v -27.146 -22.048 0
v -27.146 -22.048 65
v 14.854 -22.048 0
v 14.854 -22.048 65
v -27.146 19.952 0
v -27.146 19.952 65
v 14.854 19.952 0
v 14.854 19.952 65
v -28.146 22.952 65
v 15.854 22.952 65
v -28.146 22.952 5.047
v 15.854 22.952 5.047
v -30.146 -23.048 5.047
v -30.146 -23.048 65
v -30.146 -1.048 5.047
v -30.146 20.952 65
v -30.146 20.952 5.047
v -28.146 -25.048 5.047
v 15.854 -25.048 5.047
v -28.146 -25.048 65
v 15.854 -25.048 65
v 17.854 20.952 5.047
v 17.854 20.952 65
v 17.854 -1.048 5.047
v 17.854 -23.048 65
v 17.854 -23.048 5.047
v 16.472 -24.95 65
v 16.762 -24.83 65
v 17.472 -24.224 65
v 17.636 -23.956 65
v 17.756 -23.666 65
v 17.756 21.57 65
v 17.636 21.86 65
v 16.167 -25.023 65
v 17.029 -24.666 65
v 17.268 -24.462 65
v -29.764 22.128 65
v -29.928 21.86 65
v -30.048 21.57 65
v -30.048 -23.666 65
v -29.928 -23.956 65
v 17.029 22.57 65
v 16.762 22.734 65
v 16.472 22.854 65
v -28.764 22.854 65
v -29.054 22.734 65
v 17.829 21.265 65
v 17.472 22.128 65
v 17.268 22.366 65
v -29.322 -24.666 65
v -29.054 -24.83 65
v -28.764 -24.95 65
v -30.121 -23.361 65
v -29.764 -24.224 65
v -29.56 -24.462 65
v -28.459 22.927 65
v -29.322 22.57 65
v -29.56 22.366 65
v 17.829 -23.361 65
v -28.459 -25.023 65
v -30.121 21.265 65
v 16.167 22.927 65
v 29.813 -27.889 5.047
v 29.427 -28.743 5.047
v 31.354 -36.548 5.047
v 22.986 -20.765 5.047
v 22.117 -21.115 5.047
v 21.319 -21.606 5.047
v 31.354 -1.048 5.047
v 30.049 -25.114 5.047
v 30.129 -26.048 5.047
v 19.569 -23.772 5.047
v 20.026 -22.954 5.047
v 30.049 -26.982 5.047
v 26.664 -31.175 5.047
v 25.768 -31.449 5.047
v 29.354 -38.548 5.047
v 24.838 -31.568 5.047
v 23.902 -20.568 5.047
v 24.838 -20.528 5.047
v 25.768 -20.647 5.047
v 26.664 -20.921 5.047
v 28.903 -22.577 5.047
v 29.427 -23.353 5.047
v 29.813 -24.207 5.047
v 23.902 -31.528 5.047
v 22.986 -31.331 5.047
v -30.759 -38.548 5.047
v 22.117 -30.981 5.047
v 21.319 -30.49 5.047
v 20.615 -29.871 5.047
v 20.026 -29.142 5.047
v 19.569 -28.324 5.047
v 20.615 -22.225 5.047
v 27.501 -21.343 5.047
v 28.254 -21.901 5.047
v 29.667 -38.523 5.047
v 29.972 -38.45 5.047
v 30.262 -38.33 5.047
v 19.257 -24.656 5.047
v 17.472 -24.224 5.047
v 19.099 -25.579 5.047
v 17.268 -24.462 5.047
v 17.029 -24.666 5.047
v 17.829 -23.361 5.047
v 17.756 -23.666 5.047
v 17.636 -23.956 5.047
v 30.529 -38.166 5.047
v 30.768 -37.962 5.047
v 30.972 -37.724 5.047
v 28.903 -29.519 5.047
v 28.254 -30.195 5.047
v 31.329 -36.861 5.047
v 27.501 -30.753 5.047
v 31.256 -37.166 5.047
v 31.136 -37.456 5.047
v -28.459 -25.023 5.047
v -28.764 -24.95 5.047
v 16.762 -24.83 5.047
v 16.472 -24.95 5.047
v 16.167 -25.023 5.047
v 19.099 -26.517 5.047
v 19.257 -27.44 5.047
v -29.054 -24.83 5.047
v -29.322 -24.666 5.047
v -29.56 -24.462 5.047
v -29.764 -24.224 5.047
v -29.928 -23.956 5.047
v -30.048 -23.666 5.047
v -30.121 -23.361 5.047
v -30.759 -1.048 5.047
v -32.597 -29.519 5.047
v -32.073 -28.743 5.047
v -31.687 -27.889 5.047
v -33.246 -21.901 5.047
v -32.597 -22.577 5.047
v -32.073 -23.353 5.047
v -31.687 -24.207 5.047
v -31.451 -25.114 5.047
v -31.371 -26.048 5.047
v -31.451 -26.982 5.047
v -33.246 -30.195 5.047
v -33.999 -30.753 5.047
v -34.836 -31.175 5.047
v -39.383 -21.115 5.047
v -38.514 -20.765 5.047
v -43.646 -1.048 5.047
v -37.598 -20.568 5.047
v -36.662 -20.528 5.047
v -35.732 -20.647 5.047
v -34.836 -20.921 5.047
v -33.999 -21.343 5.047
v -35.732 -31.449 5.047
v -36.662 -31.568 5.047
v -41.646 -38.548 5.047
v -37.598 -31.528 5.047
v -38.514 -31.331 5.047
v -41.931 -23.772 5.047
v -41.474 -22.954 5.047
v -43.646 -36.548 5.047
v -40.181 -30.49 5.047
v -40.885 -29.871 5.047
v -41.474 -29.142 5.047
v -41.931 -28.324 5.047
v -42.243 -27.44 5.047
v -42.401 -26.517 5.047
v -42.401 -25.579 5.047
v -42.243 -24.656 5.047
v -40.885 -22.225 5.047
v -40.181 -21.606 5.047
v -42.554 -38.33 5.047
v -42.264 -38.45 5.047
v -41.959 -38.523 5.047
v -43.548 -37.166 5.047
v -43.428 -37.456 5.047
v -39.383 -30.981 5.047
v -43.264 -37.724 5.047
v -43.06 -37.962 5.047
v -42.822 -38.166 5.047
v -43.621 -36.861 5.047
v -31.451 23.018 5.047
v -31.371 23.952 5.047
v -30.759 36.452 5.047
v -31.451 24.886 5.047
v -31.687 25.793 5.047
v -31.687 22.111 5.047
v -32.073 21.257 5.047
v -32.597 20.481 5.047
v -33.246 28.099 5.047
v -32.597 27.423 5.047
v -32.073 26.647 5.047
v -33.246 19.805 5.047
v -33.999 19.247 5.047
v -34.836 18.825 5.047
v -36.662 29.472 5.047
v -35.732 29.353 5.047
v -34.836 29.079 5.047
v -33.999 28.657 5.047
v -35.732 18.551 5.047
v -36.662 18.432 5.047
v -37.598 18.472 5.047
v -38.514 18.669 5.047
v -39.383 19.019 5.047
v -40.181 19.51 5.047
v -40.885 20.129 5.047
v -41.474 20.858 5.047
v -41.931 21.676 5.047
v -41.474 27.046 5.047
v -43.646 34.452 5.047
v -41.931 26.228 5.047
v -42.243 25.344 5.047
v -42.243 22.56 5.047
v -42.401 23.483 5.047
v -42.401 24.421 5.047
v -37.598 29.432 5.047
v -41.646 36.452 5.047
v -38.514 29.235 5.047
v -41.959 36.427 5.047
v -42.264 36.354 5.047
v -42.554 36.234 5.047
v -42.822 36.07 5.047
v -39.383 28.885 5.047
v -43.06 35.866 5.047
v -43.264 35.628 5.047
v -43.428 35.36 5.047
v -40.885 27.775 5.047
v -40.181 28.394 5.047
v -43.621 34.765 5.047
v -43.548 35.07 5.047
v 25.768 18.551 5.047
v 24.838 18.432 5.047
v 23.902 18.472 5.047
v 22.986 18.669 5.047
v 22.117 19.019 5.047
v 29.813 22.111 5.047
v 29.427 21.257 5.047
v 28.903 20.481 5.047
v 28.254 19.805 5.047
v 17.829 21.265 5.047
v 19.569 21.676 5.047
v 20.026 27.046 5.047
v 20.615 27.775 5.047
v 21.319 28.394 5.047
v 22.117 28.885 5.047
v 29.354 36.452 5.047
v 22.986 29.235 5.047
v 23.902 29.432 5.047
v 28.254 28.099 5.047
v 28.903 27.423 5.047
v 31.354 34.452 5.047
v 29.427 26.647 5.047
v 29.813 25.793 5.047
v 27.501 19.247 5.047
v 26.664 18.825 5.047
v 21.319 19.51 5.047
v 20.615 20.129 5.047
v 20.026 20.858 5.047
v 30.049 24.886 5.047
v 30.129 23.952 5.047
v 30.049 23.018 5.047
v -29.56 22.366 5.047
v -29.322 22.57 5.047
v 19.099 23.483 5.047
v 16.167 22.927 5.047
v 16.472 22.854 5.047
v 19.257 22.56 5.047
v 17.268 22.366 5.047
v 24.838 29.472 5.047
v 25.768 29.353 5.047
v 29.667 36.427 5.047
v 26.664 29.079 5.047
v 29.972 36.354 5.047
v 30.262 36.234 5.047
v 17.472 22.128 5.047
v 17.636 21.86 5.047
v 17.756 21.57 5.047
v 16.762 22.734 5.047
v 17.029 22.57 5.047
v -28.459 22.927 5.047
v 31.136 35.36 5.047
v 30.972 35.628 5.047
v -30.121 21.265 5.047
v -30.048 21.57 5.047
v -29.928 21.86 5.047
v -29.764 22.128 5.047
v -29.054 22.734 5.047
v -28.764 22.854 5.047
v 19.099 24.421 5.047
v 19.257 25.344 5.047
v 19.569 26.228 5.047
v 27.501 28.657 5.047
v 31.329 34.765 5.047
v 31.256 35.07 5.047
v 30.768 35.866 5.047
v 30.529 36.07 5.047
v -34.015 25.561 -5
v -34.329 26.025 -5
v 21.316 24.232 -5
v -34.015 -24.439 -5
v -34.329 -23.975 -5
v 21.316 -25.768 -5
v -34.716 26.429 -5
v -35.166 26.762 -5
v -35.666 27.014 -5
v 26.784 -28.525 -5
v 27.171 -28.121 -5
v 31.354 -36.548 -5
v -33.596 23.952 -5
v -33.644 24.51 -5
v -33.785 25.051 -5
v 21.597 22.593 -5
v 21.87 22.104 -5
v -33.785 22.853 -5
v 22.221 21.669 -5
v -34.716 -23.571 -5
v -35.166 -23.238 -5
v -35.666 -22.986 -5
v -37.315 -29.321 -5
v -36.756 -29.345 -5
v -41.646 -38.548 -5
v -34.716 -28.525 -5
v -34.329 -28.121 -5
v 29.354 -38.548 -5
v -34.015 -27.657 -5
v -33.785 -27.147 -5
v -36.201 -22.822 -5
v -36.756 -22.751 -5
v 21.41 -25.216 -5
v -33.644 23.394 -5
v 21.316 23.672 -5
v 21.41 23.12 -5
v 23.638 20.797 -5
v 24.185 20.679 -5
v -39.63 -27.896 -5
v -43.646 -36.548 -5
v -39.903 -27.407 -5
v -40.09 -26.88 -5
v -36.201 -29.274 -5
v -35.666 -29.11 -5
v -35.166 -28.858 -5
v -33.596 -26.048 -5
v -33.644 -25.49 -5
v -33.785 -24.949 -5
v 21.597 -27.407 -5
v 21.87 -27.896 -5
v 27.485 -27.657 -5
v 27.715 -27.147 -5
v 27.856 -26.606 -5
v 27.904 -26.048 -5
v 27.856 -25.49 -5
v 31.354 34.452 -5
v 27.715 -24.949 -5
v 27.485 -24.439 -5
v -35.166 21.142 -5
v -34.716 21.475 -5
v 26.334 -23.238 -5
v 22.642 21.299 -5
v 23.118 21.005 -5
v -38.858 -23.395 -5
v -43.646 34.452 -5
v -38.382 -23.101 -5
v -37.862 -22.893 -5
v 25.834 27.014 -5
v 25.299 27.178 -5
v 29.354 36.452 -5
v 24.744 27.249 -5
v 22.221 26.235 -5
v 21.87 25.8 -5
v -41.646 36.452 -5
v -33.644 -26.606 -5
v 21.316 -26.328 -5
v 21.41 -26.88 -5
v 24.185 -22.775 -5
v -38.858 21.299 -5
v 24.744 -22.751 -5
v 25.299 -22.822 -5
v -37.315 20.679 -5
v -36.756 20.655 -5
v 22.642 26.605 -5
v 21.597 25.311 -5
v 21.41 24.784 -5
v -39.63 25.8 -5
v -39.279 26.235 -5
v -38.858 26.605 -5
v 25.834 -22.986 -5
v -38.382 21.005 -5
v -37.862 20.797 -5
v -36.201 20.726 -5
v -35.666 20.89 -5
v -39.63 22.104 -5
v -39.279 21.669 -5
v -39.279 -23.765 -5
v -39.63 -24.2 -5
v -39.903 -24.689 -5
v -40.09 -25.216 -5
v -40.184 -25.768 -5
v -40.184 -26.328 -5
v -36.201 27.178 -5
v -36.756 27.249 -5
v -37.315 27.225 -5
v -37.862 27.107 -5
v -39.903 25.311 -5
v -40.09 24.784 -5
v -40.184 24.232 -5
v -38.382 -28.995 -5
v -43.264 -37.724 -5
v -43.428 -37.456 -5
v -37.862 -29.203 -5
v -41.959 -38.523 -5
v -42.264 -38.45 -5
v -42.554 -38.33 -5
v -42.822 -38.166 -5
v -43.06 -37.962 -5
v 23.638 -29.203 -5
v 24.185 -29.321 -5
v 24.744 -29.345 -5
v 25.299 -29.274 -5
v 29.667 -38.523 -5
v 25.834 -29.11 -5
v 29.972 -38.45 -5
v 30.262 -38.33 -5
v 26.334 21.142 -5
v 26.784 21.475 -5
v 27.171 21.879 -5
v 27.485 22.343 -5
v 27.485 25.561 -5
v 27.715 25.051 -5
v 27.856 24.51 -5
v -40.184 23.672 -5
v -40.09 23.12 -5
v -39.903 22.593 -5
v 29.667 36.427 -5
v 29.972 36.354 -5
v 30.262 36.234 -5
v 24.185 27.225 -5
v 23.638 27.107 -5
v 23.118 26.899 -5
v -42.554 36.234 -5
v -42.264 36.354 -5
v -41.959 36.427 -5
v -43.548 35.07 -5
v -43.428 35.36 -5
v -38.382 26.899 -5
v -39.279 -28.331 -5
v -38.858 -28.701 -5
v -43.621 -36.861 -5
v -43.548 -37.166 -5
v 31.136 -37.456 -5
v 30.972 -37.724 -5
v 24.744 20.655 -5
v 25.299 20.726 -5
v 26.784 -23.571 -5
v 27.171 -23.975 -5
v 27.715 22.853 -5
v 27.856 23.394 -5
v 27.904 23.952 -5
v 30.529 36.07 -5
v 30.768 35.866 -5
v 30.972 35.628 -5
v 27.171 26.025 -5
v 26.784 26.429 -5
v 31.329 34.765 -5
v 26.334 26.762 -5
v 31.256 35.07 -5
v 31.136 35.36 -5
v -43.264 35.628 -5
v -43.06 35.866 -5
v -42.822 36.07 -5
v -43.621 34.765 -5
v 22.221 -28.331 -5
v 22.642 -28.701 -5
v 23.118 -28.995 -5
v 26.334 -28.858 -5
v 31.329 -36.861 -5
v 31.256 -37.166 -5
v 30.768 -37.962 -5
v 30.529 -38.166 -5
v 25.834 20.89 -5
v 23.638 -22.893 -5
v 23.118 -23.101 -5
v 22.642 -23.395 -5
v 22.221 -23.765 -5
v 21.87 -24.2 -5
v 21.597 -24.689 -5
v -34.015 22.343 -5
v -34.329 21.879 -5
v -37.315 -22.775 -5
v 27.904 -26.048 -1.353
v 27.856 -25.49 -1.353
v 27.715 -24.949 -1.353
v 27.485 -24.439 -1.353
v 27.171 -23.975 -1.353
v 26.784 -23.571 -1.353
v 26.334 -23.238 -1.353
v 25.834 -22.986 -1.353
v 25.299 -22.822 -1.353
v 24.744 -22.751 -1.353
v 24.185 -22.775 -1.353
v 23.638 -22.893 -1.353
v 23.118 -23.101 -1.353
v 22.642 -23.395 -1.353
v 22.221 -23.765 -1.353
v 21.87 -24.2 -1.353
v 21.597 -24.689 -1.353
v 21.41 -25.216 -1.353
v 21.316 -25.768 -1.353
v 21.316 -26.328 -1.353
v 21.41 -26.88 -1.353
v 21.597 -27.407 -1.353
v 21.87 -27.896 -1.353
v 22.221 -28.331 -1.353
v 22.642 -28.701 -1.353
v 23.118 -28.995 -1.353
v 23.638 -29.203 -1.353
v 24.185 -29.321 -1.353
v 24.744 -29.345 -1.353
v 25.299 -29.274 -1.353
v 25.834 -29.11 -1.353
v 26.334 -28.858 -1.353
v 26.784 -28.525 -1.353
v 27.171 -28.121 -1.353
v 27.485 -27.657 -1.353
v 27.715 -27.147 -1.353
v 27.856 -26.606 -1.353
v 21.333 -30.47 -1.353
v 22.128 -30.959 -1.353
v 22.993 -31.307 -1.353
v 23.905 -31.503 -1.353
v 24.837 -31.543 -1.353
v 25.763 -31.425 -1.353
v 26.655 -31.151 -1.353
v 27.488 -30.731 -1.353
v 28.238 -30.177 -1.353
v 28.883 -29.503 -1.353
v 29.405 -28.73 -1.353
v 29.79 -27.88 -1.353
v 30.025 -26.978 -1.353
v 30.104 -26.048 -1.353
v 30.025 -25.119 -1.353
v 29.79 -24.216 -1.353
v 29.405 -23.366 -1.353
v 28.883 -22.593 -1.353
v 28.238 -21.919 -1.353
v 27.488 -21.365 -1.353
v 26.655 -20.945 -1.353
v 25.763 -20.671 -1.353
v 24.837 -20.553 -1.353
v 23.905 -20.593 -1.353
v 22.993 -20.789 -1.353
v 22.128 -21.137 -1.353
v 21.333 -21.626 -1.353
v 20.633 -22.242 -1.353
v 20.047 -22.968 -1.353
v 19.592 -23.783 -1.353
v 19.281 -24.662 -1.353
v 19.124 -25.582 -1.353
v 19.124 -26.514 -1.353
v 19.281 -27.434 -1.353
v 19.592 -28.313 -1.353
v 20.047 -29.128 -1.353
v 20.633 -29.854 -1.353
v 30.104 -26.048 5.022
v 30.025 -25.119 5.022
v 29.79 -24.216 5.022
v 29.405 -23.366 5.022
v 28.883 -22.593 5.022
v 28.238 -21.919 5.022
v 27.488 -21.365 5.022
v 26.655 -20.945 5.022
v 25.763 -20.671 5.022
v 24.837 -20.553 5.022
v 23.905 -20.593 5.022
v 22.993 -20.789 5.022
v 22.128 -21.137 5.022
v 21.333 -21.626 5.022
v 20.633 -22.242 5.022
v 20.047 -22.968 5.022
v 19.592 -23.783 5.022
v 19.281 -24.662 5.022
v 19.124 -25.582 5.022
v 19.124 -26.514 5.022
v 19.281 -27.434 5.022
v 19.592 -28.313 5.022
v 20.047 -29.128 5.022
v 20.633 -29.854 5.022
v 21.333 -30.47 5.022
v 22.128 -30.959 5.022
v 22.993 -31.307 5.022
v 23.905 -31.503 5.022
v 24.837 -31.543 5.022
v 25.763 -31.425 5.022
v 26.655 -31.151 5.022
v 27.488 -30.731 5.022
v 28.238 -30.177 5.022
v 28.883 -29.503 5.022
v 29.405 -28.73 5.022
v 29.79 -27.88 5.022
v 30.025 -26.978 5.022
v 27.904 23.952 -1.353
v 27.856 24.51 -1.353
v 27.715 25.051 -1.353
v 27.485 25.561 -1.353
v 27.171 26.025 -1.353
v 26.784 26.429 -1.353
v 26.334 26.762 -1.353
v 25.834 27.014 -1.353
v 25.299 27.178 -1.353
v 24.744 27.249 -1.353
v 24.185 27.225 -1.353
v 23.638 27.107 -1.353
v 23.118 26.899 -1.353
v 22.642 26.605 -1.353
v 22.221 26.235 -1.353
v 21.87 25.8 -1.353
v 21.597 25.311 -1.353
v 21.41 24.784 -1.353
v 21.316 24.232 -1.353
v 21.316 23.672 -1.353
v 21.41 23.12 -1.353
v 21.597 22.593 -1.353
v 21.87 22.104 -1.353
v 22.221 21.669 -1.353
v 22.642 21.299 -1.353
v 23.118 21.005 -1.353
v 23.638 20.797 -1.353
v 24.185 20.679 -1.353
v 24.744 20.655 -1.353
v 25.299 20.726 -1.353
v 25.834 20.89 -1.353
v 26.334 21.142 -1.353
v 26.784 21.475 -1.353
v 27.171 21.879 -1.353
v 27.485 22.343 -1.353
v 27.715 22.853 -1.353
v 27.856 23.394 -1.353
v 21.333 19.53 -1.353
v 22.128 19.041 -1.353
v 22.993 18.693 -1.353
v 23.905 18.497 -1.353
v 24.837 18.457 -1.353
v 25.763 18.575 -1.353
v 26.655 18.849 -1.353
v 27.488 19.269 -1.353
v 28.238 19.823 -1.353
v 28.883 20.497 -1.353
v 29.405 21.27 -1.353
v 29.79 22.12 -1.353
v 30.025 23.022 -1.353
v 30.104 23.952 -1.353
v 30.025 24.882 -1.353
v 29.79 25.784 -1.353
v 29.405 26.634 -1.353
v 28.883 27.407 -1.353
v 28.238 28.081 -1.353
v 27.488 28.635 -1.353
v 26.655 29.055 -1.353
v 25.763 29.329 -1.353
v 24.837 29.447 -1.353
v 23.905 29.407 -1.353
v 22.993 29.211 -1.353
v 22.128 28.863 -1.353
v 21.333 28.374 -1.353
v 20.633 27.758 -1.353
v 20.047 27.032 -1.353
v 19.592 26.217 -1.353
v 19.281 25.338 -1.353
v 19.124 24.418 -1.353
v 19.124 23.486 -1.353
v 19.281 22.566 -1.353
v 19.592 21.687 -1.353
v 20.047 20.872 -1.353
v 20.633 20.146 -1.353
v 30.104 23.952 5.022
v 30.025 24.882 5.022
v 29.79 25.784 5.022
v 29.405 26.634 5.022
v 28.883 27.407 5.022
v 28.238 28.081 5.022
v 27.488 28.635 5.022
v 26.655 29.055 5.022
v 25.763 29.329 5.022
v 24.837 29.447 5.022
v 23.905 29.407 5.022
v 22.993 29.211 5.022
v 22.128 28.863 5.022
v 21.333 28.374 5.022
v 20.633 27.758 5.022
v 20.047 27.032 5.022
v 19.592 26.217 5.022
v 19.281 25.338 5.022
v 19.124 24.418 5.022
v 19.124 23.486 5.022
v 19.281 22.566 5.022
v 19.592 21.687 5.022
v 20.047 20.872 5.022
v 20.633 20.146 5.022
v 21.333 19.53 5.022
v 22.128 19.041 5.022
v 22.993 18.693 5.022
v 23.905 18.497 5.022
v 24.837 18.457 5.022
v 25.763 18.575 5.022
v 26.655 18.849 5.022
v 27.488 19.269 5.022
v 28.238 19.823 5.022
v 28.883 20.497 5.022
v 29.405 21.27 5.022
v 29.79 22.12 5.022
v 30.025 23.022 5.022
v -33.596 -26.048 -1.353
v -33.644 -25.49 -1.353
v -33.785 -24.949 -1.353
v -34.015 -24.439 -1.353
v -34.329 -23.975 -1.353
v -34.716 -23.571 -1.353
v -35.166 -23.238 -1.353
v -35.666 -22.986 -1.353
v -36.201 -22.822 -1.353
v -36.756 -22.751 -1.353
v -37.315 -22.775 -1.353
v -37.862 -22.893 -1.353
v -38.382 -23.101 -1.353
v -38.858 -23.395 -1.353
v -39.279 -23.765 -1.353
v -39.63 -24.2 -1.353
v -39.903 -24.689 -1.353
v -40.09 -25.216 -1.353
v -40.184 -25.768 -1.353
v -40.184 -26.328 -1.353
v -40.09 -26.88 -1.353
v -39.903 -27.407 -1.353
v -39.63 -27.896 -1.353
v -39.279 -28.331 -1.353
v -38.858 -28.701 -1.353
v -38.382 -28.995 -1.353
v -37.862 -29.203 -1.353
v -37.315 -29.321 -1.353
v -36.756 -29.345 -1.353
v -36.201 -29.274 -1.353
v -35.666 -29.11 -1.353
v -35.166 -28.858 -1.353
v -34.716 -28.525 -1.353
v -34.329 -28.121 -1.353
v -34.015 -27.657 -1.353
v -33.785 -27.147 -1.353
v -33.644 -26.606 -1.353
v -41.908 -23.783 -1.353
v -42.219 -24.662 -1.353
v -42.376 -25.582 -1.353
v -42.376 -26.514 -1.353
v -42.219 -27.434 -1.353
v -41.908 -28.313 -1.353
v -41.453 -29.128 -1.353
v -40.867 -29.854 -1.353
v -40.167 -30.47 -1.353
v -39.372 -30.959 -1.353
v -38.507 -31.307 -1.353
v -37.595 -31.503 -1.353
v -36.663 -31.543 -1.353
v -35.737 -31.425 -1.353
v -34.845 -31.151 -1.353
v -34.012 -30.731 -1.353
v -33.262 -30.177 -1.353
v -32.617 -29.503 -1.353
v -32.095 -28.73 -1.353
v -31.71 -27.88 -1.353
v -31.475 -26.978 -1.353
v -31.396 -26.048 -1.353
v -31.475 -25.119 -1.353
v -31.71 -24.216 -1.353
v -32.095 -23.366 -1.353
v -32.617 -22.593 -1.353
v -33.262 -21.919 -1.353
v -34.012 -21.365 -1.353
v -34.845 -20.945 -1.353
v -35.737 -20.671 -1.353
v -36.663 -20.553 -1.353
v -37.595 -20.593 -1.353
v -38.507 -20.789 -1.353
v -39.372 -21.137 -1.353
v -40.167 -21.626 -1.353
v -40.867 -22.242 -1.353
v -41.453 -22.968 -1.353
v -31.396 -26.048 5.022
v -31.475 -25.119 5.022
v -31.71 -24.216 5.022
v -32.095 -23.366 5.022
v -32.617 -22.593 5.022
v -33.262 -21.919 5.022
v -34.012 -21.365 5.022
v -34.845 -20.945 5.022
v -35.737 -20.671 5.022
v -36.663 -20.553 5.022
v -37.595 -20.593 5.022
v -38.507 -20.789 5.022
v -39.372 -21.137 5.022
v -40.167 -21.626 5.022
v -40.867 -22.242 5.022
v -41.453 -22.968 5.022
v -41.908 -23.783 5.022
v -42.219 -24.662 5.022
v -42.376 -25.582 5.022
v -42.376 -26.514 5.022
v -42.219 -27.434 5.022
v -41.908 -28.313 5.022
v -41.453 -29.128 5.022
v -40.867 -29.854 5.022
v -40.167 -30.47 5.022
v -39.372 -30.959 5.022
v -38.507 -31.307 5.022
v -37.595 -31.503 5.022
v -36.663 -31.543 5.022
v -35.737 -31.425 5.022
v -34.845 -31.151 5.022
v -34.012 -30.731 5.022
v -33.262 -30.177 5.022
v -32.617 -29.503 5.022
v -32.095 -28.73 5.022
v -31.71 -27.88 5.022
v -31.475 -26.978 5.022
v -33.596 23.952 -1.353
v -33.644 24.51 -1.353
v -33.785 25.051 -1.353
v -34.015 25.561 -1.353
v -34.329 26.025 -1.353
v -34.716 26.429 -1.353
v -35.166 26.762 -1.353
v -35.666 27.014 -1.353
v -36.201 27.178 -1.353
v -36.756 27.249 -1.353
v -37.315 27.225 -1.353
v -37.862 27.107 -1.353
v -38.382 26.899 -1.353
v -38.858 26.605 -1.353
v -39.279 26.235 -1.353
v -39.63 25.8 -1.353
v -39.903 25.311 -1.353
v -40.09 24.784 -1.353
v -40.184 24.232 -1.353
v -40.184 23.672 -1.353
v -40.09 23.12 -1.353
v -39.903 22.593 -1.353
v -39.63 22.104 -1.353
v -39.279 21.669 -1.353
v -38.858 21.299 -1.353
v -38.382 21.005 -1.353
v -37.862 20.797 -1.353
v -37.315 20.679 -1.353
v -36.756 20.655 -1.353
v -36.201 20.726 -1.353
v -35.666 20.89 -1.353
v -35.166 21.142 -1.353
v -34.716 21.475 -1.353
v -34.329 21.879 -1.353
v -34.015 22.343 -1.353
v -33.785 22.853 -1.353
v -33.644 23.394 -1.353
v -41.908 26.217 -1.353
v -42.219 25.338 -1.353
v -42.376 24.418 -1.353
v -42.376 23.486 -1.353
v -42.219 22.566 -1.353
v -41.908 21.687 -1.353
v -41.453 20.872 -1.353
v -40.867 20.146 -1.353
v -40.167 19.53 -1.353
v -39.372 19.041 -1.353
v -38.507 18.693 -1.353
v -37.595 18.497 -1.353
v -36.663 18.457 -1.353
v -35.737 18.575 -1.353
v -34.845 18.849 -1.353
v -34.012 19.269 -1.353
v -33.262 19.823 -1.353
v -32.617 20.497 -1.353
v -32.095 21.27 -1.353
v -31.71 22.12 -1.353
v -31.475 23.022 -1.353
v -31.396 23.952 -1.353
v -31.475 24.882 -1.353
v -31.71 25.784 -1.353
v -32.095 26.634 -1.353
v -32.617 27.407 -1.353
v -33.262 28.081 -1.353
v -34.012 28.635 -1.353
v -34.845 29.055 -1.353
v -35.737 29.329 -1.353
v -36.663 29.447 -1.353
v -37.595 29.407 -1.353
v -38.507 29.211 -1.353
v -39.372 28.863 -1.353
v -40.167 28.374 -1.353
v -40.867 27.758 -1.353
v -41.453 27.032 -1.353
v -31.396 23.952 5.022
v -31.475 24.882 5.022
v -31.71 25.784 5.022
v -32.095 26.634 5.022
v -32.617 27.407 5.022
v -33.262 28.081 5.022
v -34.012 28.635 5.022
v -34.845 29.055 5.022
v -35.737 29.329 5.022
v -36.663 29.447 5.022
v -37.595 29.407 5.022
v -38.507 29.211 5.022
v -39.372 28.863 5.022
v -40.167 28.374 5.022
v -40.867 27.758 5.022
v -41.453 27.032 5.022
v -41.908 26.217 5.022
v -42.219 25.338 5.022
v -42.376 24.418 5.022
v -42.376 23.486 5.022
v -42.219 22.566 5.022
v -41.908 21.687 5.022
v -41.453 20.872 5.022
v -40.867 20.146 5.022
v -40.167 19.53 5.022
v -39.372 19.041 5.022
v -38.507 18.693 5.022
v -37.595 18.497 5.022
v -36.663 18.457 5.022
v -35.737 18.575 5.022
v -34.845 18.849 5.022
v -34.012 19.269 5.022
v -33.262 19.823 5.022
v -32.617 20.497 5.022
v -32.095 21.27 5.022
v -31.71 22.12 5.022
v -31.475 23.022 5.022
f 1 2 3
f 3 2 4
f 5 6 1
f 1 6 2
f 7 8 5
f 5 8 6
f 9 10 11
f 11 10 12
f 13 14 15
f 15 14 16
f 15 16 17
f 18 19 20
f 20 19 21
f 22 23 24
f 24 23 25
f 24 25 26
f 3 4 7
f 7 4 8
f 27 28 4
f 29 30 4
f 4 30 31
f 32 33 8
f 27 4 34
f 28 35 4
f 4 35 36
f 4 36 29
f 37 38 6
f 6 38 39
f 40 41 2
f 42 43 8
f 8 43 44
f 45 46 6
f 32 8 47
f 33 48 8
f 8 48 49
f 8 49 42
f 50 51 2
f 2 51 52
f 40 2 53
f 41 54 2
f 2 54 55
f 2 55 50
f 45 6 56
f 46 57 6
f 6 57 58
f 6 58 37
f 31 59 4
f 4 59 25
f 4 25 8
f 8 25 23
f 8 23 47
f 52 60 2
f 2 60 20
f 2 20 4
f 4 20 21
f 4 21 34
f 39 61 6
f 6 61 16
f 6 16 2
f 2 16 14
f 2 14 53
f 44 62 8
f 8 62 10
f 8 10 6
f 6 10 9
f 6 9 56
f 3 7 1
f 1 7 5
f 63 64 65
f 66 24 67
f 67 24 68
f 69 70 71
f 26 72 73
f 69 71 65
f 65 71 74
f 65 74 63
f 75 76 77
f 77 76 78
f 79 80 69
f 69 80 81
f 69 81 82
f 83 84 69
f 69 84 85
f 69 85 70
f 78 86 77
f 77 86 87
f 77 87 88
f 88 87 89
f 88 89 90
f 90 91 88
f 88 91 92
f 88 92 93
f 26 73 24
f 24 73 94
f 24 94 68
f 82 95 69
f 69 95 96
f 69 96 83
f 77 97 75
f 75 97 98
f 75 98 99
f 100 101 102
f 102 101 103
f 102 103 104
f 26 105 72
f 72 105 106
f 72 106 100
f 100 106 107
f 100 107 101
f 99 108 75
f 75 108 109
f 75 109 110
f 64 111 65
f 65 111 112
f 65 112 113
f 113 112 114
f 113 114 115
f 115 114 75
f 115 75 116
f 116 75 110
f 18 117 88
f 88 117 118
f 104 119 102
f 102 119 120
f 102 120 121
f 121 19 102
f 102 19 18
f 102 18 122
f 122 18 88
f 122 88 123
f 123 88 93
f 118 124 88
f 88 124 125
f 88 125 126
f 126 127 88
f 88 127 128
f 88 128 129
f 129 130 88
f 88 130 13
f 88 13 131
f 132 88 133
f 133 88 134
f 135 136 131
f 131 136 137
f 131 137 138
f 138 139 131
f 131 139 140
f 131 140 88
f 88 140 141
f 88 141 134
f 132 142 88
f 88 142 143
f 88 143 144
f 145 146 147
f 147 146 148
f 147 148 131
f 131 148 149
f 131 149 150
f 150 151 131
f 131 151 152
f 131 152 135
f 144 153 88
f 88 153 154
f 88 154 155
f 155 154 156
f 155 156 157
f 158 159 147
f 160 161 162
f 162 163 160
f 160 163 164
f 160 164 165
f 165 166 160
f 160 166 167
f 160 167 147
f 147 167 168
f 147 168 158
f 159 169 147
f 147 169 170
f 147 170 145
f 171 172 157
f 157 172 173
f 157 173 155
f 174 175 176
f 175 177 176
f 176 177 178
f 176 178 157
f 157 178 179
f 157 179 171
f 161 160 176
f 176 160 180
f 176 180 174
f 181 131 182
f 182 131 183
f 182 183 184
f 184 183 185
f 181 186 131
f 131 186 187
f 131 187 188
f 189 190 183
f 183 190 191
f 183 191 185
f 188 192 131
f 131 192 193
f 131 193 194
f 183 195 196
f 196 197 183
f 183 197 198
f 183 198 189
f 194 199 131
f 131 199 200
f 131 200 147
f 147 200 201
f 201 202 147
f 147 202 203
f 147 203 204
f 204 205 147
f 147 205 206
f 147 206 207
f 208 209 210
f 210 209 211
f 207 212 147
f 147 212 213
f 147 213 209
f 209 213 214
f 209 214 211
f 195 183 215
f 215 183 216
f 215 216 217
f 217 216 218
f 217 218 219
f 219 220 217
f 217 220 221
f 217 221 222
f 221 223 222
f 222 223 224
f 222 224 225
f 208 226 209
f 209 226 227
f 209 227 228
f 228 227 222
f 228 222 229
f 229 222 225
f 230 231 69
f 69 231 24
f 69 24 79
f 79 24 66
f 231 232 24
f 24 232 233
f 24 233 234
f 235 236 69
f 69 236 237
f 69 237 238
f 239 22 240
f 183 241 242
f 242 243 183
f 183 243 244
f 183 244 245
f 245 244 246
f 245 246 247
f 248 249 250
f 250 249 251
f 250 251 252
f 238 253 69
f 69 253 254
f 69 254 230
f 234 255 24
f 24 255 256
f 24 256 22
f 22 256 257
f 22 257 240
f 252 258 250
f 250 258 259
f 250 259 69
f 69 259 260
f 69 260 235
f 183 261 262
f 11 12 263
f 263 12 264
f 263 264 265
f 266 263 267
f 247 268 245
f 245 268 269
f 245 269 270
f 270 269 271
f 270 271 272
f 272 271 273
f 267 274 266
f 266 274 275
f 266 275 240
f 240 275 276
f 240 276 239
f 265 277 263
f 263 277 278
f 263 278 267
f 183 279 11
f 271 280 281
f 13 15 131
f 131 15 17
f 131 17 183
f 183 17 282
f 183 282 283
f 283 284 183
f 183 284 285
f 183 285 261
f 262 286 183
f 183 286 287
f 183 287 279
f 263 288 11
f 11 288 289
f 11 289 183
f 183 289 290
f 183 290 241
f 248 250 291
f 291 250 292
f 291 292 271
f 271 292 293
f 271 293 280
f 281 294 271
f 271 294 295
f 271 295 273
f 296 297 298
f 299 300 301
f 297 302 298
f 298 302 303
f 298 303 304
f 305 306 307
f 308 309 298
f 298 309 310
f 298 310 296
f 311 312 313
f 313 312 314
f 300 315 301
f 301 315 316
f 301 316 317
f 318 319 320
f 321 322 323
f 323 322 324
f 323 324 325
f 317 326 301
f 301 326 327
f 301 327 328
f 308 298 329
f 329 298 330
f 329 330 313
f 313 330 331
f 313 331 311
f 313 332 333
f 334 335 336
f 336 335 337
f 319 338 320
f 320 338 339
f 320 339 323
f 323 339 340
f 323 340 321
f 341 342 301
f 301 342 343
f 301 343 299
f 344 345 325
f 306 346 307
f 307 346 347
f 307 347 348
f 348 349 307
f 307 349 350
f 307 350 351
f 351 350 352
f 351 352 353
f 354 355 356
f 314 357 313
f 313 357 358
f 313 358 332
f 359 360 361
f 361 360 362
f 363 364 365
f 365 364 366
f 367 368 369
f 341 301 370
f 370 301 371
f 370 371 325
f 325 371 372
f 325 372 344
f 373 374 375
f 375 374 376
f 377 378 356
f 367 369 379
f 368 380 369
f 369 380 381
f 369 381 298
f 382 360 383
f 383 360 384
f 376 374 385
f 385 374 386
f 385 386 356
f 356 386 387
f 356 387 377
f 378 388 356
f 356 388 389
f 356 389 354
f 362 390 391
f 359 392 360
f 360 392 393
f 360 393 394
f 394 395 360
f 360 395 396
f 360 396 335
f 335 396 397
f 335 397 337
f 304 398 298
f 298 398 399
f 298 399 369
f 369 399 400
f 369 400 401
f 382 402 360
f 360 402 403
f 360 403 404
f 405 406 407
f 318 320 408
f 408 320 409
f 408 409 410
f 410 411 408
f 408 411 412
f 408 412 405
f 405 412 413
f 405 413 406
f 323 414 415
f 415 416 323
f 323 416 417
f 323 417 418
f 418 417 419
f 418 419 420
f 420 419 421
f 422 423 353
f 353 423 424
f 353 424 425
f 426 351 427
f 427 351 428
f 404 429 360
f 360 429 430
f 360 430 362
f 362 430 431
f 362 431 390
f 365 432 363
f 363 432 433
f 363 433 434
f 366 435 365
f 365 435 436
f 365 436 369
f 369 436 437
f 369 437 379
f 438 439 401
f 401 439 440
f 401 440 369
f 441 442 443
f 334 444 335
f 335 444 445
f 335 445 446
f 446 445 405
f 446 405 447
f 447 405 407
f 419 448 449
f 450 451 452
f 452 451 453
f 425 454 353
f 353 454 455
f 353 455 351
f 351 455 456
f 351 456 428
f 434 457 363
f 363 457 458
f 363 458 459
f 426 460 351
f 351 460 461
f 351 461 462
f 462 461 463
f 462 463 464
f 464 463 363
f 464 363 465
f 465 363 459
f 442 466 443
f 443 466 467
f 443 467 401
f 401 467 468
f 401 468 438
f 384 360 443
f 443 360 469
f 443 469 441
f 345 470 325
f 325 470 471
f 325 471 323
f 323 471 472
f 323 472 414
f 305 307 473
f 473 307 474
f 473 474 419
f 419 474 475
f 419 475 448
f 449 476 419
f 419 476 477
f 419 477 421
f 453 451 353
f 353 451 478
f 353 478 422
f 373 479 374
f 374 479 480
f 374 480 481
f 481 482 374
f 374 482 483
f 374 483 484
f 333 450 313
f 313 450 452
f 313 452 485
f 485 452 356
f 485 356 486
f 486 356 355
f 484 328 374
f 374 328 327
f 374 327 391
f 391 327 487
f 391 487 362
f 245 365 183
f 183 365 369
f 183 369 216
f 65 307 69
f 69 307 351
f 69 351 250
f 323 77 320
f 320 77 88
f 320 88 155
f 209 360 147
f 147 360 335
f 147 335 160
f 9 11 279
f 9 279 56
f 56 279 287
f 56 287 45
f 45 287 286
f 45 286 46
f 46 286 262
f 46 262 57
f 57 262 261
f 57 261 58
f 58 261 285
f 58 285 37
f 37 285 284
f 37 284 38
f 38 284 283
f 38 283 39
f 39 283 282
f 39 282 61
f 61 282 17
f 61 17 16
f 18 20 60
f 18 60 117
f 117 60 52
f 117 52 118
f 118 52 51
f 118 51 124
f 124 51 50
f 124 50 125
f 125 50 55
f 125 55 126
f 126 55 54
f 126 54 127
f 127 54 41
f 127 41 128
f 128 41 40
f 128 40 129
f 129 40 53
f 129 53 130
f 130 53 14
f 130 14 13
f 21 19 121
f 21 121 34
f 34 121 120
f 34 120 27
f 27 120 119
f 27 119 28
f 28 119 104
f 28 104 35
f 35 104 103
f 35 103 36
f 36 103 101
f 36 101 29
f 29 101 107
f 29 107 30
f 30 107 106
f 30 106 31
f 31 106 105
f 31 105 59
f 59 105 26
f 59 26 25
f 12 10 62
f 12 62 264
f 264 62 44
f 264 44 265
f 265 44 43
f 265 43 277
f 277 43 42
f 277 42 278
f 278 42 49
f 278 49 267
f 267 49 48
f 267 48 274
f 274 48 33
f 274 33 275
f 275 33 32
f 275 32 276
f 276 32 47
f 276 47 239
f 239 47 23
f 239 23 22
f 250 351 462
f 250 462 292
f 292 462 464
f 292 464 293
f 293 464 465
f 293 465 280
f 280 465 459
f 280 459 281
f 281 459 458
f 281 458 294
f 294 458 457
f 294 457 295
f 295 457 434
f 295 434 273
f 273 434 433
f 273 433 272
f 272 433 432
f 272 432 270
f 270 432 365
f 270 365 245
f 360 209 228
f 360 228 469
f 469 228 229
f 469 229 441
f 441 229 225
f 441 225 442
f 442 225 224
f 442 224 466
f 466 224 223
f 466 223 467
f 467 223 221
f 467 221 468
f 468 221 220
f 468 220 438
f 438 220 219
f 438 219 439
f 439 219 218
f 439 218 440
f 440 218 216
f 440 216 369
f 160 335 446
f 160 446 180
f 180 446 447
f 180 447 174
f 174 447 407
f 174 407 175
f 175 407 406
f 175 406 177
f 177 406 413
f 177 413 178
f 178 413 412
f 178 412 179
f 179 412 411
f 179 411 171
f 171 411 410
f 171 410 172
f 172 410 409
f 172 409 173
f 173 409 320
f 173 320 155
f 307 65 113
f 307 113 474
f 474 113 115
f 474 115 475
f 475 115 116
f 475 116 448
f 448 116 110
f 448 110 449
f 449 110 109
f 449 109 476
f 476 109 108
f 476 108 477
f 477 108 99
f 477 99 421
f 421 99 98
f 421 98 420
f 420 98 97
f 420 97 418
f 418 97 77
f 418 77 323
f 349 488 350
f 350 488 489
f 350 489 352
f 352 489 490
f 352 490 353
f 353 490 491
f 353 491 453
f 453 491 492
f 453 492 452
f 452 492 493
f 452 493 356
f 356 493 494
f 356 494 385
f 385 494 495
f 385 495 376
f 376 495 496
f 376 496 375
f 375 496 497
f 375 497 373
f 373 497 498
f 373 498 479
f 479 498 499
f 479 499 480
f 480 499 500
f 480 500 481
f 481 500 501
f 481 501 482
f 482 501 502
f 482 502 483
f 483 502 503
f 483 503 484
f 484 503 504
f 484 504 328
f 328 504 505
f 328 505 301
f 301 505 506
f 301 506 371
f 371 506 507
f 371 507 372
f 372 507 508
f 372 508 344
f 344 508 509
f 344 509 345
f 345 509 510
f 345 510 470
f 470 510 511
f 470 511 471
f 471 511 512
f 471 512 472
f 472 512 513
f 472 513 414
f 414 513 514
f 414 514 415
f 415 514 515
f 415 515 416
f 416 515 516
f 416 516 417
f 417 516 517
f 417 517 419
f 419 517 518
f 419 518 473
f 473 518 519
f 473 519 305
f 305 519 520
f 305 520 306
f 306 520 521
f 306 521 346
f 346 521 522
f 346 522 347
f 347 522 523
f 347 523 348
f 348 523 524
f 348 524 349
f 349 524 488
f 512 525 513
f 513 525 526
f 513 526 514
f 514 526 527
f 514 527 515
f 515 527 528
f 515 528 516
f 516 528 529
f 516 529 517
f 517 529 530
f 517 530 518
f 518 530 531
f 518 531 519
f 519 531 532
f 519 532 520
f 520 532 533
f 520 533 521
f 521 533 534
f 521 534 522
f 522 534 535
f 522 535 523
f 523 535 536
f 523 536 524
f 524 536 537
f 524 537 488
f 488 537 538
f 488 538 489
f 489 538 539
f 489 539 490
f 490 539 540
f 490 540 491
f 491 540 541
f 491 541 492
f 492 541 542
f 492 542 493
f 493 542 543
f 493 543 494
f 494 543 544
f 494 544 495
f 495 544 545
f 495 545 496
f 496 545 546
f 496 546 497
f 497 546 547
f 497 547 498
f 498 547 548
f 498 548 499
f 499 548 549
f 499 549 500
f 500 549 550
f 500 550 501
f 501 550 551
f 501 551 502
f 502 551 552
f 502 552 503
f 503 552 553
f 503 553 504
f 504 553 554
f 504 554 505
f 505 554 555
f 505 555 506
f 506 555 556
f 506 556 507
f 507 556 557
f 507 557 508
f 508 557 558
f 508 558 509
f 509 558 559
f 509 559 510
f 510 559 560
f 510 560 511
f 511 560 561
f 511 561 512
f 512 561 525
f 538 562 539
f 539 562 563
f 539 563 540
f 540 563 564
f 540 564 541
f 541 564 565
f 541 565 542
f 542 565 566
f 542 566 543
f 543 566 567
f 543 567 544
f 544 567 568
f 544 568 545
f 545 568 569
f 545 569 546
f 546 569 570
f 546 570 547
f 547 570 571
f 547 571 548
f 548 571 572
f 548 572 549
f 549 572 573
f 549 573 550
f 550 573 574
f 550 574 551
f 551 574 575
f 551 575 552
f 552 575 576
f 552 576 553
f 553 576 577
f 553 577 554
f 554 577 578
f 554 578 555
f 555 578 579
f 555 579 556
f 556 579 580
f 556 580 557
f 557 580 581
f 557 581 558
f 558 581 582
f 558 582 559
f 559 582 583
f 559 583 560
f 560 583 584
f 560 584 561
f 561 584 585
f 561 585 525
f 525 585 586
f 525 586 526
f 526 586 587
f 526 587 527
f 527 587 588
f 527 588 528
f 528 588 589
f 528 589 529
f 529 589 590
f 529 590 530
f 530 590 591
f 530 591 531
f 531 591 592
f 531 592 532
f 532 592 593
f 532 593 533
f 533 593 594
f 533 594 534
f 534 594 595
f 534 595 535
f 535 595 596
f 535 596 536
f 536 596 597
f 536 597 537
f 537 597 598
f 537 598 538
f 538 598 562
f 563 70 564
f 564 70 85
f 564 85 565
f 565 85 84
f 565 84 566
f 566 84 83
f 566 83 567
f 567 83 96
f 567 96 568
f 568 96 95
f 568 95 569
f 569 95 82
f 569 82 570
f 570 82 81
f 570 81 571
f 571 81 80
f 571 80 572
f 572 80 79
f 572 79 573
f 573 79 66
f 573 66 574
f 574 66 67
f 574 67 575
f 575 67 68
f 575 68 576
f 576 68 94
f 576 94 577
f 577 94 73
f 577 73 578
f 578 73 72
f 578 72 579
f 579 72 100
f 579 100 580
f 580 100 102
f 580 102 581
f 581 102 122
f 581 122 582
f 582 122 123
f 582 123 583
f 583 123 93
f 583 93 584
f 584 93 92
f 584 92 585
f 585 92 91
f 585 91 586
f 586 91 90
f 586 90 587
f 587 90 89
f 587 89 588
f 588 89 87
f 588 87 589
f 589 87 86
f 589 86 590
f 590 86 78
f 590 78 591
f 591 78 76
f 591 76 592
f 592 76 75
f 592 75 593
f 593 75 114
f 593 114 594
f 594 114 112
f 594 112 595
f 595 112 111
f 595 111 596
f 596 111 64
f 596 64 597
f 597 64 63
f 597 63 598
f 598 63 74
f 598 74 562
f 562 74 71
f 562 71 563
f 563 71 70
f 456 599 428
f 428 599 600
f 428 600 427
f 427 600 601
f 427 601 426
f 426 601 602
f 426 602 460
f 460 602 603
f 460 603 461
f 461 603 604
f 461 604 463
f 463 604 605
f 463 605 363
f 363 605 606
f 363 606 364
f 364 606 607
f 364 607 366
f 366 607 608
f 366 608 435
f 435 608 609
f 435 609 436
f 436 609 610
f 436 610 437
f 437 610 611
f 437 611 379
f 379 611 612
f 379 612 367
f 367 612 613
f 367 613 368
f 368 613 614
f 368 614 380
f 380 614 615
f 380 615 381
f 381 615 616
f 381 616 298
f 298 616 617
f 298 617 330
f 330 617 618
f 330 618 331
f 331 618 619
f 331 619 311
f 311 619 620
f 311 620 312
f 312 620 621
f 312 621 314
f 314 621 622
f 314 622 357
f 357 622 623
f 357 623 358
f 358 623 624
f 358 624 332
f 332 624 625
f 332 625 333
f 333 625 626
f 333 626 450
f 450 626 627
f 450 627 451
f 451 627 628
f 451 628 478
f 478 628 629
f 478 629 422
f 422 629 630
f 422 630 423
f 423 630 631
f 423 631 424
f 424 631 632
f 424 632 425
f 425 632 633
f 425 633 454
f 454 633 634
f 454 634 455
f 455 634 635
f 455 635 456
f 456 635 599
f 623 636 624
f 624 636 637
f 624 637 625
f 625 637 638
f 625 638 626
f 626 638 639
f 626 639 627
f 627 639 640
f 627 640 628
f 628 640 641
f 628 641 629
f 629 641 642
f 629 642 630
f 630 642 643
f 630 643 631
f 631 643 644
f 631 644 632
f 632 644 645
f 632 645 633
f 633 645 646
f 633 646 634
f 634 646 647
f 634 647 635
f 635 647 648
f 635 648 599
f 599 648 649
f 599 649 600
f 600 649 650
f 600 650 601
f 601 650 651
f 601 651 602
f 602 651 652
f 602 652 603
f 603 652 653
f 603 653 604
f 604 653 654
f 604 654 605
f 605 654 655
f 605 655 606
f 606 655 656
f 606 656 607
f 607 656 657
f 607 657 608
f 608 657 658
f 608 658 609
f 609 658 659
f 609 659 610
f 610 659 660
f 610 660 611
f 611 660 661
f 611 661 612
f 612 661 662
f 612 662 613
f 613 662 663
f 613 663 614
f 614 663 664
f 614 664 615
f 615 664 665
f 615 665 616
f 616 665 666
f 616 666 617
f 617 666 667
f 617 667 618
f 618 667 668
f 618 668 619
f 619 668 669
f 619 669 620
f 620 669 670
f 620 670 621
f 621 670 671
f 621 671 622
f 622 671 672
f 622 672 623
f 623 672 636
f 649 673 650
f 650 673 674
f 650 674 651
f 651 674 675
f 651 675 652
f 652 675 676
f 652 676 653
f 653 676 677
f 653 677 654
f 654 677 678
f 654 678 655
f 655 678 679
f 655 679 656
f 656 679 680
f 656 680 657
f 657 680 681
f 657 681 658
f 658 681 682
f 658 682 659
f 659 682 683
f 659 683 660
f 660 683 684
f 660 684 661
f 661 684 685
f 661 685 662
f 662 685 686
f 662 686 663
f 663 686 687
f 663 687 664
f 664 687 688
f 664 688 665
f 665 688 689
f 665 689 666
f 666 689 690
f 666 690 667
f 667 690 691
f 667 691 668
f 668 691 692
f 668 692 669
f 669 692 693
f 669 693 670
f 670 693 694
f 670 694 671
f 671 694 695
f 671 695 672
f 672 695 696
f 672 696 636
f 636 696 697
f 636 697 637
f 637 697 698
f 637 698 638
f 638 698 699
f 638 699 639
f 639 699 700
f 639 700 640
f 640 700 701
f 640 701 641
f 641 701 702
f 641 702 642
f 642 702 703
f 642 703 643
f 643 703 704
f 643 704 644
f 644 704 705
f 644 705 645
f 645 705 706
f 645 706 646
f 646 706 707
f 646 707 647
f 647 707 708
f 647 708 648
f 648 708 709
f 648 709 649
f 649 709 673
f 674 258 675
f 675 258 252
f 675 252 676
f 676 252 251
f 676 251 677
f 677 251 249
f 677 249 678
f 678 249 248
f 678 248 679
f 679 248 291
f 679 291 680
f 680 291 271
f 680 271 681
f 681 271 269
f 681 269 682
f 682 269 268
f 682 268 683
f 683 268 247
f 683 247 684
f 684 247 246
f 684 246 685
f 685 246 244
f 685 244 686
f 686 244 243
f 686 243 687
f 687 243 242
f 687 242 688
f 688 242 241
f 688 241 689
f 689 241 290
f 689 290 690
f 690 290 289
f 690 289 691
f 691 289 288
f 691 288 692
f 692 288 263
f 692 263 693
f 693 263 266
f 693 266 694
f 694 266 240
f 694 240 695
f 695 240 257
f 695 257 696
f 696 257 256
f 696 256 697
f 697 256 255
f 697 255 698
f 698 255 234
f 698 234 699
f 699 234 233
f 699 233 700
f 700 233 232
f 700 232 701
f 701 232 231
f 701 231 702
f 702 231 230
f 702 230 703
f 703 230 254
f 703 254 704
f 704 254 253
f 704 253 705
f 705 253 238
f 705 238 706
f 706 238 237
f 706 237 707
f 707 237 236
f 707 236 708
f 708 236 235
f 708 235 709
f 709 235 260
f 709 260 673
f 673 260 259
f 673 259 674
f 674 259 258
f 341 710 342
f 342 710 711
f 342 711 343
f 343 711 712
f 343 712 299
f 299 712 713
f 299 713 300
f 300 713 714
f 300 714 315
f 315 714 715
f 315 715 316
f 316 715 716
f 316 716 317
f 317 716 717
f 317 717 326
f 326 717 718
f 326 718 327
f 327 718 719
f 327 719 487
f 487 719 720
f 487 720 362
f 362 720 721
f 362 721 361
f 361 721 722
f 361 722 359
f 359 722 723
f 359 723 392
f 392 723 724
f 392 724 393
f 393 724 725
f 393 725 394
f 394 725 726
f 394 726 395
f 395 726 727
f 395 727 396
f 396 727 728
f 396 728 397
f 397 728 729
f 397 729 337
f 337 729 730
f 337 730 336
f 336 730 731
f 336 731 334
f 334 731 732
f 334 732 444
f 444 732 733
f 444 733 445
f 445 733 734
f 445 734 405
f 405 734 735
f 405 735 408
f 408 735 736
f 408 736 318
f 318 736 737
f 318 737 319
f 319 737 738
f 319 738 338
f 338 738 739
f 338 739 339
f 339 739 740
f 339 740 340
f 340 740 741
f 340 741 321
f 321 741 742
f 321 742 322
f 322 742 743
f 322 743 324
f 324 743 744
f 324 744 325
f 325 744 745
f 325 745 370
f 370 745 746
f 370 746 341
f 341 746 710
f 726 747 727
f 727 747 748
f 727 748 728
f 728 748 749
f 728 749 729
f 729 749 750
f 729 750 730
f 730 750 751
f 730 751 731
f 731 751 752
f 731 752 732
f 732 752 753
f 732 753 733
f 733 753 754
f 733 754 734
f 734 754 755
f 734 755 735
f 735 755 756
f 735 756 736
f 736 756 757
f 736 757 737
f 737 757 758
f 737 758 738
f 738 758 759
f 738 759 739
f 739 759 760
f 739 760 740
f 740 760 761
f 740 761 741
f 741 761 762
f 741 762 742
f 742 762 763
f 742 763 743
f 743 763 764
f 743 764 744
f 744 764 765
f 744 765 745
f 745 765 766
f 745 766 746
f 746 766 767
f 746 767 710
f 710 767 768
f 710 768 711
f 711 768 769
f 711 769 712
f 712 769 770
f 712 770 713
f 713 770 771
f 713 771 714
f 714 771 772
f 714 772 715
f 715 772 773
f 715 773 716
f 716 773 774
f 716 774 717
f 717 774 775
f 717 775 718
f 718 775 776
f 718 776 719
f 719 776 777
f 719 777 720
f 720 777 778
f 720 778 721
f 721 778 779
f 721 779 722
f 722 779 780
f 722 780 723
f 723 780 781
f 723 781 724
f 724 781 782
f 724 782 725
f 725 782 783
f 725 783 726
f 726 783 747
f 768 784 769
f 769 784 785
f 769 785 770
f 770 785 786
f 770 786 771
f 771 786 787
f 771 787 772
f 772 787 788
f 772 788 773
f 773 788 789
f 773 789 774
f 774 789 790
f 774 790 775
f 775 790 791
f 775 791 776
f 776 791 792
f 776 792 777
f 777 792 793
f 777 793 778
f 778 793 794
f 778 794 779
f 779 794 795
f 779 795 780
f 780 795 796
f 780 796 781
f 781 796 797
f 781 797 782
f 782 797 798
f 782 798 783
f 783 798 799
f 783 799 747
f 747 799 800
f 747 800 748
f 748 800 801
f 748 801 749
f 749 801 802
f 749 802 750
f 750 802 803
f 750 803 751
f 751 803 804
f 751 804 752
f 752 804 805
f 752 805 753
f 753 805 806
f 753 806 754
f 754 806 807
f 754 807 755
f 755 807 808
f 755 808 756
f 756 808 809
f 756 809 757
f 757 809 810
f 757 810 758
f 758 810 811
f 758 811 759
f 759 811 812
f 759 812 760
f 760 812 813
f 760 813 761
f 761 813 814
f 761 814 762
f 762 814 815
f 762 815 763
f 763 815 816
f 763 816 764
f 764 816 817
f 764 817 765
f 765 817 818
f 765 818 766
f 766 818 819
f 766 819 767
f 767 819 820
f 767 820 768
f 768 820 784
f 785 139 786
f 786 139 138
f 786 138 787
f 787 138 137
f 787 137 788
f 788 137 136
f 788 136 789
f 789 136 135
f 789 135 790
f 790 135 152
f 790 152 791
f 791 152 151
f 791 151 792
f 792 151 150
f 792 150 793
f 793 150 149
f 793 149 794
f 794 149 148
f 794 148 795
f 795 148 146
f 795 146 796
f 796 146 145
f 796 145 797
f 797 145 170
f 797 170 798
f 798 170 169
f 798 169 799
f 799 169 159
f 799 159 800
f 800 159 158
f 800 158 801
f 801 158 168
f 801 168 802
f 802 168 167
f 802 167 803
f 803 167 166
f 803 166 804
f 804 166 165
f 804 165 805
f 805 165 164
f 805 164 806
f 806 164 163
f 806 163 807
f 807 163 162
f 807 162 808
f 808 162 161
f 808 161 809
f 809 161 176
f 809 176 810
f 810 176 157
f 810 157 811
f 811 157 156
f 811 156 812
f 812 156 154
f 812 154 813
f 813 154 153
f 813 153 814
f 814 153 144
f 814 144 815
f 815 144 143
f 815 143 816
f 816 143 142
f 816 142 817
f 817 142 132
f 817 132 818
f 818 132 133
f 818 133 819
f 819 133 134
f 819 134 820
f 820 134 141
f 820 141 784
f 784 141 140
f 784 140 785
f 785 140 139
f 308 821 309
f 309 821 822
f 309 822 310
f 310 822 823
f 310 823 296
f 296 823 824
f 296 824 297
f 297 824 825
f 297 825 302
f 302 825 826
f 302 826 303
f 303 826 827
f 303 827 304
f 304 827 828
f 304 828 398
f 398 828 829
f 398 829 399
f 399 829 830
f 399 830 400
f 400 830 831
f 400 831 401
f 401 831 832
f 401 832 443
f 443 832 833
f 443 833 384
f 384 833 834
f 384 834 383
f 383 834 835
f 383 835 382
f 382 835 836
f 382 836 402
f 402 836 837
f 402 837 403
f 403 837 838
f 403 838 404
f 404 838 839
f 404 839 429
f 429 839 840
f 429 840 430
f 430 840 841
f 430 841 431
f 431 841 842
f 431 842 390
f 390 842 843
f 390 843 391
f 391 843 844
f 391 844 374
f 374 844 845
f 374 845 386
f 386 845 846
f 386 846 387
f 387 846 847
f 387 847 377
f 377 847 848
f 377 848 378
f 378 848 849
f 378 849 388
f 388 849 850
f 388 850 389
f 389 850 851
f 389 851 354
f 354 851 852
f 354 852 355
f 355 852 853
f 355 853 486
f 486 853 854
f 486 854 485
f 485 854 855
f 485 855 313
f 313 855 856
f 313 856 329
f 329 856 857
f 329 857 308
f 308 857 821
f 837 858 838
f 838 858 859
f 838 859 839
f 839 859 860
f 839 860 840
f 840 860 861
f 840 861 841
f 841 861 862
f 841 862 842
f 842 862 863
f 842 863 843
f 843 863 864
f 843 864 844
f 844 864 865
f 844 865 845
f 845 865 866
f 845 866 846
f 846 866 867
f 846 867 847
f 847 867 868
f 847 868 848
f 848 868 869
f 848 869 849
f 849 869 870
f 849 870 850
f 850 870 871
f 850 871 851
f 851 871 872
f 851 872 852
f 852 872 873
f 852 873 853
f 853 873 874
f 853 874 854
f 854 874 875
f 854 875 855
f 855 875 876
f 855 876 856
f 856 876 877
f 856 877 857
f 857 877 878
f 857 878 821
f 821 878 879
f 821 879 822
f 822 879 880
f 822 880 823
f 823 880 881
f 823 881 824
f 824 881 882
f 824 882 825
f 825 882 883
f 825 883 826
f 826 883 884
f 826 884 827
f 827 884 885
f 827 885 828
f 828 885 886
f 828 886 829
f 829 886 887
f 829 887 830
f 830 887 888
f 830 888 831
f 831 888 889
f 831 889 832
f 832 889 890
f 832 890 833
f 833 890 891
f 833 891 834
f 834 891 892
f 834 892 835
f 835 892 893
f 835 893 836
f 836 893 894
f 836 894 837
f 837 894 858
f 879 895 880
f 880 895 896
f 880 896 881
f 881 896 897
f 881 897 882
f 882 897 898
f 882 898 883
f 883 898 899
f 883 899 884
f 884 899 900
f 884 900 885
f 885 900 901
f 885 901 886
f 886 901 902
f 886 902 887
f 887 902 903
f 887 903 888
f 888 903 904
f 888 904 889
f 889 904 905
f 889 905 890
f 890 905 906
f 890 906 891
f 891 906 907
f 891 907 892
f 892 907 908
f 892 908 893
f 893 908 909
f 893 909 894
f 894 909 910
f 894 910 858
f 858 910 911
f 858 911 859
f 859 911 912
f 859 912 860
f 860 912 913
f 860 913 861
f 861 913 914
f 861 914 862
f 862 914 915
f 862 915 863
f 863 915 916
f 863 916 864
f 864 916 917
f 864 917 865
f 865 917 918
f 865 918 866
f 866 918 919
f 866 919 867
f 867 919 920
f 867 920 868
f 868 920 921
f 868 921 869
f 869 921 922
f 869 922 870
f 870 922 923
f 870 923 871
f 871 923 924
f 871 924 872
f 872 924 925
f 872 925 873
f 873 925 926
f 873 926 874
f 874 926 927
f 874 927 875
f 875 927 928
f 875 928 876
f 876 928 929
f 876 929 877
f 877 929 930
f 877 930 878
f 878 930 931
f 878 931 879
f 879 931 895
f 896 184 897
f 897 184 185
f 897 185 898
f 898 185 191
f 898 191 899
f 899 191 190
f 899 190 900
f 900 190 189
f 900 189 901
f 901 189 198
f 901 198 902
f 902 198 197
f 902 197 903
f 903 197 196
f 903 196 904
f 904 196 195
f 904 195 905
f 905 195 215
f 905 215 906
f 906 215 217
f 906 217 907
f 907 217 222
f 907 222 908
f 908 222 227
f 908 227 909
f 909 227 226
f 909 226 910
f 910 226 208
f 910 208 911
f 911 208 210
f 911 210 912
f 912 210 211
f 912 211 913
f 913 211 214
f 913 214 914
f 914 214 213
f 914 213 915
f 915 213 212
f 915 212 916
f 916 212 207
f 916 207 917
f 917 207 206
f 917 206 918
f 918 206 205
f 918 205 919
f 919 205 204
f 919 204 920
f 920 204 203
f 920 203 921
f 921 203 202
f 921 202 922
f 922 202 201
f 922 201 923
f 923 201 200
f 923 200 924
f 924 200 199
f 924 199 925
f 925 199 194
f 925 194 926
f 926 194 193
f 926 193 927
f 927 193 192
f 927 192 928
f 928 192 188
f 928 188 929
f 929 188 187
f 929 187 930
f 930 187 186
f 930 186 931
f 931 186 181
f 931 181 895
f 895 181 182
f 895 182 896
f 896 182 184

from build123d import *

# Parameters (mm, degrees)
SKETCH1_W                                    = 48
SKETCH1_H                                    = 48
SKETCH1_W_2                                  = 42
SKETCH1_H_2                                  = 42
BOSS_EXTRUDE1_DEPTH                          = 65
SKETCH3_W                                    = 75
SKETCH3_H                                    = 75
BOSS_EXTRUDE2_DEPTH                          = 5
SKETCH8_W                                    = 75
SKETCH8_H                                    = 75
SKETCH8_W_2                                  = 42
SKETCH8_H_2                                  = 42
BOSS_EXTRUDE3_DEPTH                          = 5.047079132
FILLET1_R                                    = 2
CBORE_FOR_M6_HEX_SOCKET_HEAD_CAP_SCR_2_COUNT = 2
CBORE_FOR_M6_HEX_SOCKET_HEAD_CAP_SCR_2_PITCH = 50
CBORE_FOR_M6_HEX_SOCKET_HEAD_CAP_SCR_3_COUNT = 2
CBORE_FOR_M6_HEX_SOCKET_HEAD_CAP_SCR_3_PITCH = 61.5
CBORE_FOR_M6_HEX_SOCKET_HEAD_CAP_SCR_4_COUNT = 2
CBORE_FOR_M6_HEX_SOCKET_HEAD_CAP_SCR_4_PITCH = 79.260645973


with BuildPart() as part:
    # Sketch1 → Boss-Extrude1 (new body)
    with BuildSketch(Plane(origin=(0, 0, 0), x_dir=(0, 1, 0), z_dir=(0, 0, 1))):
        with Locations((-1.048003873, 6.146094376)):
            Rectangle(SKETCH1_W, SKETCH1_H)
        with Locations((-1.048003873, 6.146094376)):
            Rectangle(SKETCH1_W_2, SKETCH1_H_2, mode=Mode.SUBTRACT)
    extrude(amount=BOSS_EXTRUDE1_DEPTH)

    # Sketch3 → Boss-Extrude2 (add)
    with BuildSketch(Plane(origin=(0, 0, 0), x_dir=(1, 0, 0), z_dir=(0, 0, -1))):
        with Locations((-6.146094376, 1.048003873)):
            Rectangle(SKETCH3_W, SKETCH3_H)
    extrude(amount=BOSS_EXTRUDE2_DEPTH)

    # Sketch8 → Boss-Extrude3 (add)
    with BuildSketch(Plane.XY):
        with Locations((-6.146094376, -1.048003873)):
            Rectangle(SKETCH8_W, SKETCH8_H)
        with Locations((-6.146094376, -1.048003873)):
            Rectangle(SKETCH8_W_2, SKETCH8_H_2, mode=Mode.SUBTRACT)
    extrude(amount=BOSS_EXTRUDE3_DEPTH)

    # Fillet1
    fillet1_edges = [part.edges().sort_by_distance(p)[0] for p in [
        (17.853905624, 22.951996127, 35.023539566),
        (17.853905624, -25.048003873, 35.023539566),
        (-30.146094376, -25.048003873, 35.023539566),
        (-30.146094376, 22.951996127, 35.023539566),
        (-43.646094376, -38.548003873, 0.023539566),
        (31.353905624, -38.548003873, 0.023539566),
        (31.353905624, 36.451996127, 0.023539566),
        (-43.646094376, 36.451996127, 0.023539566),
    ]]
    fillet(fillet1_edges, radius=FILLET1_R)

    # Sketch15 → CBORE for M6 Hex Socket Head Cap Screw2 (revolve, cut)
    with BuildSketch(Plane(origin=(-36.896094376, 23.951996127, 5.047079132), x_dir=(0, -1, 0), z_dir=(1, 0, 0))):
        Polygon((0, 0), (0, 10.047079132), (3.3, 10.047079132), (3.3, 6.4), (5.5, 6.4), (5.5, 0.025), (5.525, 0), align=None)
    cbore_for_m6_hex_socket_head_cap_screw2 = revolve(axis=Axis((-36.896094376, 23.951996127, 11.397079132), (0, 0, -1)), mode=Mode.SUBTRACT)

    # CBORE for M6 Hex Socket Head Cap Scr 2: CBORE for M6 Hex Socket Head Cap Screw2 ×2
    with Locations(*[(0, -i * CBORE_FOR_M6_HEX_SOCKET_HEAD_CAP_SCR_2_PITCH, 0) for i in range(1, CBORE_FOR_M6_HEX_SOCKET_HEAD_CAP_SCR_2_COUNT)]):
        add(cbore_for_m6_hex_socket_head_cap_screw2, mode=Mode.SUBTRACT)

    # CBORE for M6 Hex Socket Head Cap Scr 3: CBORE for M6 Hex Socket Head Cap Screw2 ×2
    with Locations(*[(i * CBORE_FOR_M6_HEX_SOCKET_HEAD_CAP_SCR_3_PITCH, 0, 0) for i in range(1, CBORE_FOR_M6_HEX_SOCKET_HEAD_CAP_SCR_3_COUNT)]):
        add(cbore_for_m6_hex_socket_head_cap_screw2, mode=Mode.SUBTRACT)

    # CBORE for M6 Hex Socket Head Cap Scr 4: CBORE for M6 Hex Socket Head Cap Screw2 ×2
    with Locations(*[Vector(0.7759210039901774, -0.63083008454486, 0) * (i * CBORE_FOR_M6_HEX_SOCKET_HEAD_CAP_SCR_4_PITCH) for i in range(1, CBORE_FOR_M6_HEX_SOCKET_HEAD_CAP_SCR_4_COUNT)]):
        add(cbore_for_m6_hex_socket_head_cap_screw2, mode=Mode.SUBTRACT)


solid = part.part
